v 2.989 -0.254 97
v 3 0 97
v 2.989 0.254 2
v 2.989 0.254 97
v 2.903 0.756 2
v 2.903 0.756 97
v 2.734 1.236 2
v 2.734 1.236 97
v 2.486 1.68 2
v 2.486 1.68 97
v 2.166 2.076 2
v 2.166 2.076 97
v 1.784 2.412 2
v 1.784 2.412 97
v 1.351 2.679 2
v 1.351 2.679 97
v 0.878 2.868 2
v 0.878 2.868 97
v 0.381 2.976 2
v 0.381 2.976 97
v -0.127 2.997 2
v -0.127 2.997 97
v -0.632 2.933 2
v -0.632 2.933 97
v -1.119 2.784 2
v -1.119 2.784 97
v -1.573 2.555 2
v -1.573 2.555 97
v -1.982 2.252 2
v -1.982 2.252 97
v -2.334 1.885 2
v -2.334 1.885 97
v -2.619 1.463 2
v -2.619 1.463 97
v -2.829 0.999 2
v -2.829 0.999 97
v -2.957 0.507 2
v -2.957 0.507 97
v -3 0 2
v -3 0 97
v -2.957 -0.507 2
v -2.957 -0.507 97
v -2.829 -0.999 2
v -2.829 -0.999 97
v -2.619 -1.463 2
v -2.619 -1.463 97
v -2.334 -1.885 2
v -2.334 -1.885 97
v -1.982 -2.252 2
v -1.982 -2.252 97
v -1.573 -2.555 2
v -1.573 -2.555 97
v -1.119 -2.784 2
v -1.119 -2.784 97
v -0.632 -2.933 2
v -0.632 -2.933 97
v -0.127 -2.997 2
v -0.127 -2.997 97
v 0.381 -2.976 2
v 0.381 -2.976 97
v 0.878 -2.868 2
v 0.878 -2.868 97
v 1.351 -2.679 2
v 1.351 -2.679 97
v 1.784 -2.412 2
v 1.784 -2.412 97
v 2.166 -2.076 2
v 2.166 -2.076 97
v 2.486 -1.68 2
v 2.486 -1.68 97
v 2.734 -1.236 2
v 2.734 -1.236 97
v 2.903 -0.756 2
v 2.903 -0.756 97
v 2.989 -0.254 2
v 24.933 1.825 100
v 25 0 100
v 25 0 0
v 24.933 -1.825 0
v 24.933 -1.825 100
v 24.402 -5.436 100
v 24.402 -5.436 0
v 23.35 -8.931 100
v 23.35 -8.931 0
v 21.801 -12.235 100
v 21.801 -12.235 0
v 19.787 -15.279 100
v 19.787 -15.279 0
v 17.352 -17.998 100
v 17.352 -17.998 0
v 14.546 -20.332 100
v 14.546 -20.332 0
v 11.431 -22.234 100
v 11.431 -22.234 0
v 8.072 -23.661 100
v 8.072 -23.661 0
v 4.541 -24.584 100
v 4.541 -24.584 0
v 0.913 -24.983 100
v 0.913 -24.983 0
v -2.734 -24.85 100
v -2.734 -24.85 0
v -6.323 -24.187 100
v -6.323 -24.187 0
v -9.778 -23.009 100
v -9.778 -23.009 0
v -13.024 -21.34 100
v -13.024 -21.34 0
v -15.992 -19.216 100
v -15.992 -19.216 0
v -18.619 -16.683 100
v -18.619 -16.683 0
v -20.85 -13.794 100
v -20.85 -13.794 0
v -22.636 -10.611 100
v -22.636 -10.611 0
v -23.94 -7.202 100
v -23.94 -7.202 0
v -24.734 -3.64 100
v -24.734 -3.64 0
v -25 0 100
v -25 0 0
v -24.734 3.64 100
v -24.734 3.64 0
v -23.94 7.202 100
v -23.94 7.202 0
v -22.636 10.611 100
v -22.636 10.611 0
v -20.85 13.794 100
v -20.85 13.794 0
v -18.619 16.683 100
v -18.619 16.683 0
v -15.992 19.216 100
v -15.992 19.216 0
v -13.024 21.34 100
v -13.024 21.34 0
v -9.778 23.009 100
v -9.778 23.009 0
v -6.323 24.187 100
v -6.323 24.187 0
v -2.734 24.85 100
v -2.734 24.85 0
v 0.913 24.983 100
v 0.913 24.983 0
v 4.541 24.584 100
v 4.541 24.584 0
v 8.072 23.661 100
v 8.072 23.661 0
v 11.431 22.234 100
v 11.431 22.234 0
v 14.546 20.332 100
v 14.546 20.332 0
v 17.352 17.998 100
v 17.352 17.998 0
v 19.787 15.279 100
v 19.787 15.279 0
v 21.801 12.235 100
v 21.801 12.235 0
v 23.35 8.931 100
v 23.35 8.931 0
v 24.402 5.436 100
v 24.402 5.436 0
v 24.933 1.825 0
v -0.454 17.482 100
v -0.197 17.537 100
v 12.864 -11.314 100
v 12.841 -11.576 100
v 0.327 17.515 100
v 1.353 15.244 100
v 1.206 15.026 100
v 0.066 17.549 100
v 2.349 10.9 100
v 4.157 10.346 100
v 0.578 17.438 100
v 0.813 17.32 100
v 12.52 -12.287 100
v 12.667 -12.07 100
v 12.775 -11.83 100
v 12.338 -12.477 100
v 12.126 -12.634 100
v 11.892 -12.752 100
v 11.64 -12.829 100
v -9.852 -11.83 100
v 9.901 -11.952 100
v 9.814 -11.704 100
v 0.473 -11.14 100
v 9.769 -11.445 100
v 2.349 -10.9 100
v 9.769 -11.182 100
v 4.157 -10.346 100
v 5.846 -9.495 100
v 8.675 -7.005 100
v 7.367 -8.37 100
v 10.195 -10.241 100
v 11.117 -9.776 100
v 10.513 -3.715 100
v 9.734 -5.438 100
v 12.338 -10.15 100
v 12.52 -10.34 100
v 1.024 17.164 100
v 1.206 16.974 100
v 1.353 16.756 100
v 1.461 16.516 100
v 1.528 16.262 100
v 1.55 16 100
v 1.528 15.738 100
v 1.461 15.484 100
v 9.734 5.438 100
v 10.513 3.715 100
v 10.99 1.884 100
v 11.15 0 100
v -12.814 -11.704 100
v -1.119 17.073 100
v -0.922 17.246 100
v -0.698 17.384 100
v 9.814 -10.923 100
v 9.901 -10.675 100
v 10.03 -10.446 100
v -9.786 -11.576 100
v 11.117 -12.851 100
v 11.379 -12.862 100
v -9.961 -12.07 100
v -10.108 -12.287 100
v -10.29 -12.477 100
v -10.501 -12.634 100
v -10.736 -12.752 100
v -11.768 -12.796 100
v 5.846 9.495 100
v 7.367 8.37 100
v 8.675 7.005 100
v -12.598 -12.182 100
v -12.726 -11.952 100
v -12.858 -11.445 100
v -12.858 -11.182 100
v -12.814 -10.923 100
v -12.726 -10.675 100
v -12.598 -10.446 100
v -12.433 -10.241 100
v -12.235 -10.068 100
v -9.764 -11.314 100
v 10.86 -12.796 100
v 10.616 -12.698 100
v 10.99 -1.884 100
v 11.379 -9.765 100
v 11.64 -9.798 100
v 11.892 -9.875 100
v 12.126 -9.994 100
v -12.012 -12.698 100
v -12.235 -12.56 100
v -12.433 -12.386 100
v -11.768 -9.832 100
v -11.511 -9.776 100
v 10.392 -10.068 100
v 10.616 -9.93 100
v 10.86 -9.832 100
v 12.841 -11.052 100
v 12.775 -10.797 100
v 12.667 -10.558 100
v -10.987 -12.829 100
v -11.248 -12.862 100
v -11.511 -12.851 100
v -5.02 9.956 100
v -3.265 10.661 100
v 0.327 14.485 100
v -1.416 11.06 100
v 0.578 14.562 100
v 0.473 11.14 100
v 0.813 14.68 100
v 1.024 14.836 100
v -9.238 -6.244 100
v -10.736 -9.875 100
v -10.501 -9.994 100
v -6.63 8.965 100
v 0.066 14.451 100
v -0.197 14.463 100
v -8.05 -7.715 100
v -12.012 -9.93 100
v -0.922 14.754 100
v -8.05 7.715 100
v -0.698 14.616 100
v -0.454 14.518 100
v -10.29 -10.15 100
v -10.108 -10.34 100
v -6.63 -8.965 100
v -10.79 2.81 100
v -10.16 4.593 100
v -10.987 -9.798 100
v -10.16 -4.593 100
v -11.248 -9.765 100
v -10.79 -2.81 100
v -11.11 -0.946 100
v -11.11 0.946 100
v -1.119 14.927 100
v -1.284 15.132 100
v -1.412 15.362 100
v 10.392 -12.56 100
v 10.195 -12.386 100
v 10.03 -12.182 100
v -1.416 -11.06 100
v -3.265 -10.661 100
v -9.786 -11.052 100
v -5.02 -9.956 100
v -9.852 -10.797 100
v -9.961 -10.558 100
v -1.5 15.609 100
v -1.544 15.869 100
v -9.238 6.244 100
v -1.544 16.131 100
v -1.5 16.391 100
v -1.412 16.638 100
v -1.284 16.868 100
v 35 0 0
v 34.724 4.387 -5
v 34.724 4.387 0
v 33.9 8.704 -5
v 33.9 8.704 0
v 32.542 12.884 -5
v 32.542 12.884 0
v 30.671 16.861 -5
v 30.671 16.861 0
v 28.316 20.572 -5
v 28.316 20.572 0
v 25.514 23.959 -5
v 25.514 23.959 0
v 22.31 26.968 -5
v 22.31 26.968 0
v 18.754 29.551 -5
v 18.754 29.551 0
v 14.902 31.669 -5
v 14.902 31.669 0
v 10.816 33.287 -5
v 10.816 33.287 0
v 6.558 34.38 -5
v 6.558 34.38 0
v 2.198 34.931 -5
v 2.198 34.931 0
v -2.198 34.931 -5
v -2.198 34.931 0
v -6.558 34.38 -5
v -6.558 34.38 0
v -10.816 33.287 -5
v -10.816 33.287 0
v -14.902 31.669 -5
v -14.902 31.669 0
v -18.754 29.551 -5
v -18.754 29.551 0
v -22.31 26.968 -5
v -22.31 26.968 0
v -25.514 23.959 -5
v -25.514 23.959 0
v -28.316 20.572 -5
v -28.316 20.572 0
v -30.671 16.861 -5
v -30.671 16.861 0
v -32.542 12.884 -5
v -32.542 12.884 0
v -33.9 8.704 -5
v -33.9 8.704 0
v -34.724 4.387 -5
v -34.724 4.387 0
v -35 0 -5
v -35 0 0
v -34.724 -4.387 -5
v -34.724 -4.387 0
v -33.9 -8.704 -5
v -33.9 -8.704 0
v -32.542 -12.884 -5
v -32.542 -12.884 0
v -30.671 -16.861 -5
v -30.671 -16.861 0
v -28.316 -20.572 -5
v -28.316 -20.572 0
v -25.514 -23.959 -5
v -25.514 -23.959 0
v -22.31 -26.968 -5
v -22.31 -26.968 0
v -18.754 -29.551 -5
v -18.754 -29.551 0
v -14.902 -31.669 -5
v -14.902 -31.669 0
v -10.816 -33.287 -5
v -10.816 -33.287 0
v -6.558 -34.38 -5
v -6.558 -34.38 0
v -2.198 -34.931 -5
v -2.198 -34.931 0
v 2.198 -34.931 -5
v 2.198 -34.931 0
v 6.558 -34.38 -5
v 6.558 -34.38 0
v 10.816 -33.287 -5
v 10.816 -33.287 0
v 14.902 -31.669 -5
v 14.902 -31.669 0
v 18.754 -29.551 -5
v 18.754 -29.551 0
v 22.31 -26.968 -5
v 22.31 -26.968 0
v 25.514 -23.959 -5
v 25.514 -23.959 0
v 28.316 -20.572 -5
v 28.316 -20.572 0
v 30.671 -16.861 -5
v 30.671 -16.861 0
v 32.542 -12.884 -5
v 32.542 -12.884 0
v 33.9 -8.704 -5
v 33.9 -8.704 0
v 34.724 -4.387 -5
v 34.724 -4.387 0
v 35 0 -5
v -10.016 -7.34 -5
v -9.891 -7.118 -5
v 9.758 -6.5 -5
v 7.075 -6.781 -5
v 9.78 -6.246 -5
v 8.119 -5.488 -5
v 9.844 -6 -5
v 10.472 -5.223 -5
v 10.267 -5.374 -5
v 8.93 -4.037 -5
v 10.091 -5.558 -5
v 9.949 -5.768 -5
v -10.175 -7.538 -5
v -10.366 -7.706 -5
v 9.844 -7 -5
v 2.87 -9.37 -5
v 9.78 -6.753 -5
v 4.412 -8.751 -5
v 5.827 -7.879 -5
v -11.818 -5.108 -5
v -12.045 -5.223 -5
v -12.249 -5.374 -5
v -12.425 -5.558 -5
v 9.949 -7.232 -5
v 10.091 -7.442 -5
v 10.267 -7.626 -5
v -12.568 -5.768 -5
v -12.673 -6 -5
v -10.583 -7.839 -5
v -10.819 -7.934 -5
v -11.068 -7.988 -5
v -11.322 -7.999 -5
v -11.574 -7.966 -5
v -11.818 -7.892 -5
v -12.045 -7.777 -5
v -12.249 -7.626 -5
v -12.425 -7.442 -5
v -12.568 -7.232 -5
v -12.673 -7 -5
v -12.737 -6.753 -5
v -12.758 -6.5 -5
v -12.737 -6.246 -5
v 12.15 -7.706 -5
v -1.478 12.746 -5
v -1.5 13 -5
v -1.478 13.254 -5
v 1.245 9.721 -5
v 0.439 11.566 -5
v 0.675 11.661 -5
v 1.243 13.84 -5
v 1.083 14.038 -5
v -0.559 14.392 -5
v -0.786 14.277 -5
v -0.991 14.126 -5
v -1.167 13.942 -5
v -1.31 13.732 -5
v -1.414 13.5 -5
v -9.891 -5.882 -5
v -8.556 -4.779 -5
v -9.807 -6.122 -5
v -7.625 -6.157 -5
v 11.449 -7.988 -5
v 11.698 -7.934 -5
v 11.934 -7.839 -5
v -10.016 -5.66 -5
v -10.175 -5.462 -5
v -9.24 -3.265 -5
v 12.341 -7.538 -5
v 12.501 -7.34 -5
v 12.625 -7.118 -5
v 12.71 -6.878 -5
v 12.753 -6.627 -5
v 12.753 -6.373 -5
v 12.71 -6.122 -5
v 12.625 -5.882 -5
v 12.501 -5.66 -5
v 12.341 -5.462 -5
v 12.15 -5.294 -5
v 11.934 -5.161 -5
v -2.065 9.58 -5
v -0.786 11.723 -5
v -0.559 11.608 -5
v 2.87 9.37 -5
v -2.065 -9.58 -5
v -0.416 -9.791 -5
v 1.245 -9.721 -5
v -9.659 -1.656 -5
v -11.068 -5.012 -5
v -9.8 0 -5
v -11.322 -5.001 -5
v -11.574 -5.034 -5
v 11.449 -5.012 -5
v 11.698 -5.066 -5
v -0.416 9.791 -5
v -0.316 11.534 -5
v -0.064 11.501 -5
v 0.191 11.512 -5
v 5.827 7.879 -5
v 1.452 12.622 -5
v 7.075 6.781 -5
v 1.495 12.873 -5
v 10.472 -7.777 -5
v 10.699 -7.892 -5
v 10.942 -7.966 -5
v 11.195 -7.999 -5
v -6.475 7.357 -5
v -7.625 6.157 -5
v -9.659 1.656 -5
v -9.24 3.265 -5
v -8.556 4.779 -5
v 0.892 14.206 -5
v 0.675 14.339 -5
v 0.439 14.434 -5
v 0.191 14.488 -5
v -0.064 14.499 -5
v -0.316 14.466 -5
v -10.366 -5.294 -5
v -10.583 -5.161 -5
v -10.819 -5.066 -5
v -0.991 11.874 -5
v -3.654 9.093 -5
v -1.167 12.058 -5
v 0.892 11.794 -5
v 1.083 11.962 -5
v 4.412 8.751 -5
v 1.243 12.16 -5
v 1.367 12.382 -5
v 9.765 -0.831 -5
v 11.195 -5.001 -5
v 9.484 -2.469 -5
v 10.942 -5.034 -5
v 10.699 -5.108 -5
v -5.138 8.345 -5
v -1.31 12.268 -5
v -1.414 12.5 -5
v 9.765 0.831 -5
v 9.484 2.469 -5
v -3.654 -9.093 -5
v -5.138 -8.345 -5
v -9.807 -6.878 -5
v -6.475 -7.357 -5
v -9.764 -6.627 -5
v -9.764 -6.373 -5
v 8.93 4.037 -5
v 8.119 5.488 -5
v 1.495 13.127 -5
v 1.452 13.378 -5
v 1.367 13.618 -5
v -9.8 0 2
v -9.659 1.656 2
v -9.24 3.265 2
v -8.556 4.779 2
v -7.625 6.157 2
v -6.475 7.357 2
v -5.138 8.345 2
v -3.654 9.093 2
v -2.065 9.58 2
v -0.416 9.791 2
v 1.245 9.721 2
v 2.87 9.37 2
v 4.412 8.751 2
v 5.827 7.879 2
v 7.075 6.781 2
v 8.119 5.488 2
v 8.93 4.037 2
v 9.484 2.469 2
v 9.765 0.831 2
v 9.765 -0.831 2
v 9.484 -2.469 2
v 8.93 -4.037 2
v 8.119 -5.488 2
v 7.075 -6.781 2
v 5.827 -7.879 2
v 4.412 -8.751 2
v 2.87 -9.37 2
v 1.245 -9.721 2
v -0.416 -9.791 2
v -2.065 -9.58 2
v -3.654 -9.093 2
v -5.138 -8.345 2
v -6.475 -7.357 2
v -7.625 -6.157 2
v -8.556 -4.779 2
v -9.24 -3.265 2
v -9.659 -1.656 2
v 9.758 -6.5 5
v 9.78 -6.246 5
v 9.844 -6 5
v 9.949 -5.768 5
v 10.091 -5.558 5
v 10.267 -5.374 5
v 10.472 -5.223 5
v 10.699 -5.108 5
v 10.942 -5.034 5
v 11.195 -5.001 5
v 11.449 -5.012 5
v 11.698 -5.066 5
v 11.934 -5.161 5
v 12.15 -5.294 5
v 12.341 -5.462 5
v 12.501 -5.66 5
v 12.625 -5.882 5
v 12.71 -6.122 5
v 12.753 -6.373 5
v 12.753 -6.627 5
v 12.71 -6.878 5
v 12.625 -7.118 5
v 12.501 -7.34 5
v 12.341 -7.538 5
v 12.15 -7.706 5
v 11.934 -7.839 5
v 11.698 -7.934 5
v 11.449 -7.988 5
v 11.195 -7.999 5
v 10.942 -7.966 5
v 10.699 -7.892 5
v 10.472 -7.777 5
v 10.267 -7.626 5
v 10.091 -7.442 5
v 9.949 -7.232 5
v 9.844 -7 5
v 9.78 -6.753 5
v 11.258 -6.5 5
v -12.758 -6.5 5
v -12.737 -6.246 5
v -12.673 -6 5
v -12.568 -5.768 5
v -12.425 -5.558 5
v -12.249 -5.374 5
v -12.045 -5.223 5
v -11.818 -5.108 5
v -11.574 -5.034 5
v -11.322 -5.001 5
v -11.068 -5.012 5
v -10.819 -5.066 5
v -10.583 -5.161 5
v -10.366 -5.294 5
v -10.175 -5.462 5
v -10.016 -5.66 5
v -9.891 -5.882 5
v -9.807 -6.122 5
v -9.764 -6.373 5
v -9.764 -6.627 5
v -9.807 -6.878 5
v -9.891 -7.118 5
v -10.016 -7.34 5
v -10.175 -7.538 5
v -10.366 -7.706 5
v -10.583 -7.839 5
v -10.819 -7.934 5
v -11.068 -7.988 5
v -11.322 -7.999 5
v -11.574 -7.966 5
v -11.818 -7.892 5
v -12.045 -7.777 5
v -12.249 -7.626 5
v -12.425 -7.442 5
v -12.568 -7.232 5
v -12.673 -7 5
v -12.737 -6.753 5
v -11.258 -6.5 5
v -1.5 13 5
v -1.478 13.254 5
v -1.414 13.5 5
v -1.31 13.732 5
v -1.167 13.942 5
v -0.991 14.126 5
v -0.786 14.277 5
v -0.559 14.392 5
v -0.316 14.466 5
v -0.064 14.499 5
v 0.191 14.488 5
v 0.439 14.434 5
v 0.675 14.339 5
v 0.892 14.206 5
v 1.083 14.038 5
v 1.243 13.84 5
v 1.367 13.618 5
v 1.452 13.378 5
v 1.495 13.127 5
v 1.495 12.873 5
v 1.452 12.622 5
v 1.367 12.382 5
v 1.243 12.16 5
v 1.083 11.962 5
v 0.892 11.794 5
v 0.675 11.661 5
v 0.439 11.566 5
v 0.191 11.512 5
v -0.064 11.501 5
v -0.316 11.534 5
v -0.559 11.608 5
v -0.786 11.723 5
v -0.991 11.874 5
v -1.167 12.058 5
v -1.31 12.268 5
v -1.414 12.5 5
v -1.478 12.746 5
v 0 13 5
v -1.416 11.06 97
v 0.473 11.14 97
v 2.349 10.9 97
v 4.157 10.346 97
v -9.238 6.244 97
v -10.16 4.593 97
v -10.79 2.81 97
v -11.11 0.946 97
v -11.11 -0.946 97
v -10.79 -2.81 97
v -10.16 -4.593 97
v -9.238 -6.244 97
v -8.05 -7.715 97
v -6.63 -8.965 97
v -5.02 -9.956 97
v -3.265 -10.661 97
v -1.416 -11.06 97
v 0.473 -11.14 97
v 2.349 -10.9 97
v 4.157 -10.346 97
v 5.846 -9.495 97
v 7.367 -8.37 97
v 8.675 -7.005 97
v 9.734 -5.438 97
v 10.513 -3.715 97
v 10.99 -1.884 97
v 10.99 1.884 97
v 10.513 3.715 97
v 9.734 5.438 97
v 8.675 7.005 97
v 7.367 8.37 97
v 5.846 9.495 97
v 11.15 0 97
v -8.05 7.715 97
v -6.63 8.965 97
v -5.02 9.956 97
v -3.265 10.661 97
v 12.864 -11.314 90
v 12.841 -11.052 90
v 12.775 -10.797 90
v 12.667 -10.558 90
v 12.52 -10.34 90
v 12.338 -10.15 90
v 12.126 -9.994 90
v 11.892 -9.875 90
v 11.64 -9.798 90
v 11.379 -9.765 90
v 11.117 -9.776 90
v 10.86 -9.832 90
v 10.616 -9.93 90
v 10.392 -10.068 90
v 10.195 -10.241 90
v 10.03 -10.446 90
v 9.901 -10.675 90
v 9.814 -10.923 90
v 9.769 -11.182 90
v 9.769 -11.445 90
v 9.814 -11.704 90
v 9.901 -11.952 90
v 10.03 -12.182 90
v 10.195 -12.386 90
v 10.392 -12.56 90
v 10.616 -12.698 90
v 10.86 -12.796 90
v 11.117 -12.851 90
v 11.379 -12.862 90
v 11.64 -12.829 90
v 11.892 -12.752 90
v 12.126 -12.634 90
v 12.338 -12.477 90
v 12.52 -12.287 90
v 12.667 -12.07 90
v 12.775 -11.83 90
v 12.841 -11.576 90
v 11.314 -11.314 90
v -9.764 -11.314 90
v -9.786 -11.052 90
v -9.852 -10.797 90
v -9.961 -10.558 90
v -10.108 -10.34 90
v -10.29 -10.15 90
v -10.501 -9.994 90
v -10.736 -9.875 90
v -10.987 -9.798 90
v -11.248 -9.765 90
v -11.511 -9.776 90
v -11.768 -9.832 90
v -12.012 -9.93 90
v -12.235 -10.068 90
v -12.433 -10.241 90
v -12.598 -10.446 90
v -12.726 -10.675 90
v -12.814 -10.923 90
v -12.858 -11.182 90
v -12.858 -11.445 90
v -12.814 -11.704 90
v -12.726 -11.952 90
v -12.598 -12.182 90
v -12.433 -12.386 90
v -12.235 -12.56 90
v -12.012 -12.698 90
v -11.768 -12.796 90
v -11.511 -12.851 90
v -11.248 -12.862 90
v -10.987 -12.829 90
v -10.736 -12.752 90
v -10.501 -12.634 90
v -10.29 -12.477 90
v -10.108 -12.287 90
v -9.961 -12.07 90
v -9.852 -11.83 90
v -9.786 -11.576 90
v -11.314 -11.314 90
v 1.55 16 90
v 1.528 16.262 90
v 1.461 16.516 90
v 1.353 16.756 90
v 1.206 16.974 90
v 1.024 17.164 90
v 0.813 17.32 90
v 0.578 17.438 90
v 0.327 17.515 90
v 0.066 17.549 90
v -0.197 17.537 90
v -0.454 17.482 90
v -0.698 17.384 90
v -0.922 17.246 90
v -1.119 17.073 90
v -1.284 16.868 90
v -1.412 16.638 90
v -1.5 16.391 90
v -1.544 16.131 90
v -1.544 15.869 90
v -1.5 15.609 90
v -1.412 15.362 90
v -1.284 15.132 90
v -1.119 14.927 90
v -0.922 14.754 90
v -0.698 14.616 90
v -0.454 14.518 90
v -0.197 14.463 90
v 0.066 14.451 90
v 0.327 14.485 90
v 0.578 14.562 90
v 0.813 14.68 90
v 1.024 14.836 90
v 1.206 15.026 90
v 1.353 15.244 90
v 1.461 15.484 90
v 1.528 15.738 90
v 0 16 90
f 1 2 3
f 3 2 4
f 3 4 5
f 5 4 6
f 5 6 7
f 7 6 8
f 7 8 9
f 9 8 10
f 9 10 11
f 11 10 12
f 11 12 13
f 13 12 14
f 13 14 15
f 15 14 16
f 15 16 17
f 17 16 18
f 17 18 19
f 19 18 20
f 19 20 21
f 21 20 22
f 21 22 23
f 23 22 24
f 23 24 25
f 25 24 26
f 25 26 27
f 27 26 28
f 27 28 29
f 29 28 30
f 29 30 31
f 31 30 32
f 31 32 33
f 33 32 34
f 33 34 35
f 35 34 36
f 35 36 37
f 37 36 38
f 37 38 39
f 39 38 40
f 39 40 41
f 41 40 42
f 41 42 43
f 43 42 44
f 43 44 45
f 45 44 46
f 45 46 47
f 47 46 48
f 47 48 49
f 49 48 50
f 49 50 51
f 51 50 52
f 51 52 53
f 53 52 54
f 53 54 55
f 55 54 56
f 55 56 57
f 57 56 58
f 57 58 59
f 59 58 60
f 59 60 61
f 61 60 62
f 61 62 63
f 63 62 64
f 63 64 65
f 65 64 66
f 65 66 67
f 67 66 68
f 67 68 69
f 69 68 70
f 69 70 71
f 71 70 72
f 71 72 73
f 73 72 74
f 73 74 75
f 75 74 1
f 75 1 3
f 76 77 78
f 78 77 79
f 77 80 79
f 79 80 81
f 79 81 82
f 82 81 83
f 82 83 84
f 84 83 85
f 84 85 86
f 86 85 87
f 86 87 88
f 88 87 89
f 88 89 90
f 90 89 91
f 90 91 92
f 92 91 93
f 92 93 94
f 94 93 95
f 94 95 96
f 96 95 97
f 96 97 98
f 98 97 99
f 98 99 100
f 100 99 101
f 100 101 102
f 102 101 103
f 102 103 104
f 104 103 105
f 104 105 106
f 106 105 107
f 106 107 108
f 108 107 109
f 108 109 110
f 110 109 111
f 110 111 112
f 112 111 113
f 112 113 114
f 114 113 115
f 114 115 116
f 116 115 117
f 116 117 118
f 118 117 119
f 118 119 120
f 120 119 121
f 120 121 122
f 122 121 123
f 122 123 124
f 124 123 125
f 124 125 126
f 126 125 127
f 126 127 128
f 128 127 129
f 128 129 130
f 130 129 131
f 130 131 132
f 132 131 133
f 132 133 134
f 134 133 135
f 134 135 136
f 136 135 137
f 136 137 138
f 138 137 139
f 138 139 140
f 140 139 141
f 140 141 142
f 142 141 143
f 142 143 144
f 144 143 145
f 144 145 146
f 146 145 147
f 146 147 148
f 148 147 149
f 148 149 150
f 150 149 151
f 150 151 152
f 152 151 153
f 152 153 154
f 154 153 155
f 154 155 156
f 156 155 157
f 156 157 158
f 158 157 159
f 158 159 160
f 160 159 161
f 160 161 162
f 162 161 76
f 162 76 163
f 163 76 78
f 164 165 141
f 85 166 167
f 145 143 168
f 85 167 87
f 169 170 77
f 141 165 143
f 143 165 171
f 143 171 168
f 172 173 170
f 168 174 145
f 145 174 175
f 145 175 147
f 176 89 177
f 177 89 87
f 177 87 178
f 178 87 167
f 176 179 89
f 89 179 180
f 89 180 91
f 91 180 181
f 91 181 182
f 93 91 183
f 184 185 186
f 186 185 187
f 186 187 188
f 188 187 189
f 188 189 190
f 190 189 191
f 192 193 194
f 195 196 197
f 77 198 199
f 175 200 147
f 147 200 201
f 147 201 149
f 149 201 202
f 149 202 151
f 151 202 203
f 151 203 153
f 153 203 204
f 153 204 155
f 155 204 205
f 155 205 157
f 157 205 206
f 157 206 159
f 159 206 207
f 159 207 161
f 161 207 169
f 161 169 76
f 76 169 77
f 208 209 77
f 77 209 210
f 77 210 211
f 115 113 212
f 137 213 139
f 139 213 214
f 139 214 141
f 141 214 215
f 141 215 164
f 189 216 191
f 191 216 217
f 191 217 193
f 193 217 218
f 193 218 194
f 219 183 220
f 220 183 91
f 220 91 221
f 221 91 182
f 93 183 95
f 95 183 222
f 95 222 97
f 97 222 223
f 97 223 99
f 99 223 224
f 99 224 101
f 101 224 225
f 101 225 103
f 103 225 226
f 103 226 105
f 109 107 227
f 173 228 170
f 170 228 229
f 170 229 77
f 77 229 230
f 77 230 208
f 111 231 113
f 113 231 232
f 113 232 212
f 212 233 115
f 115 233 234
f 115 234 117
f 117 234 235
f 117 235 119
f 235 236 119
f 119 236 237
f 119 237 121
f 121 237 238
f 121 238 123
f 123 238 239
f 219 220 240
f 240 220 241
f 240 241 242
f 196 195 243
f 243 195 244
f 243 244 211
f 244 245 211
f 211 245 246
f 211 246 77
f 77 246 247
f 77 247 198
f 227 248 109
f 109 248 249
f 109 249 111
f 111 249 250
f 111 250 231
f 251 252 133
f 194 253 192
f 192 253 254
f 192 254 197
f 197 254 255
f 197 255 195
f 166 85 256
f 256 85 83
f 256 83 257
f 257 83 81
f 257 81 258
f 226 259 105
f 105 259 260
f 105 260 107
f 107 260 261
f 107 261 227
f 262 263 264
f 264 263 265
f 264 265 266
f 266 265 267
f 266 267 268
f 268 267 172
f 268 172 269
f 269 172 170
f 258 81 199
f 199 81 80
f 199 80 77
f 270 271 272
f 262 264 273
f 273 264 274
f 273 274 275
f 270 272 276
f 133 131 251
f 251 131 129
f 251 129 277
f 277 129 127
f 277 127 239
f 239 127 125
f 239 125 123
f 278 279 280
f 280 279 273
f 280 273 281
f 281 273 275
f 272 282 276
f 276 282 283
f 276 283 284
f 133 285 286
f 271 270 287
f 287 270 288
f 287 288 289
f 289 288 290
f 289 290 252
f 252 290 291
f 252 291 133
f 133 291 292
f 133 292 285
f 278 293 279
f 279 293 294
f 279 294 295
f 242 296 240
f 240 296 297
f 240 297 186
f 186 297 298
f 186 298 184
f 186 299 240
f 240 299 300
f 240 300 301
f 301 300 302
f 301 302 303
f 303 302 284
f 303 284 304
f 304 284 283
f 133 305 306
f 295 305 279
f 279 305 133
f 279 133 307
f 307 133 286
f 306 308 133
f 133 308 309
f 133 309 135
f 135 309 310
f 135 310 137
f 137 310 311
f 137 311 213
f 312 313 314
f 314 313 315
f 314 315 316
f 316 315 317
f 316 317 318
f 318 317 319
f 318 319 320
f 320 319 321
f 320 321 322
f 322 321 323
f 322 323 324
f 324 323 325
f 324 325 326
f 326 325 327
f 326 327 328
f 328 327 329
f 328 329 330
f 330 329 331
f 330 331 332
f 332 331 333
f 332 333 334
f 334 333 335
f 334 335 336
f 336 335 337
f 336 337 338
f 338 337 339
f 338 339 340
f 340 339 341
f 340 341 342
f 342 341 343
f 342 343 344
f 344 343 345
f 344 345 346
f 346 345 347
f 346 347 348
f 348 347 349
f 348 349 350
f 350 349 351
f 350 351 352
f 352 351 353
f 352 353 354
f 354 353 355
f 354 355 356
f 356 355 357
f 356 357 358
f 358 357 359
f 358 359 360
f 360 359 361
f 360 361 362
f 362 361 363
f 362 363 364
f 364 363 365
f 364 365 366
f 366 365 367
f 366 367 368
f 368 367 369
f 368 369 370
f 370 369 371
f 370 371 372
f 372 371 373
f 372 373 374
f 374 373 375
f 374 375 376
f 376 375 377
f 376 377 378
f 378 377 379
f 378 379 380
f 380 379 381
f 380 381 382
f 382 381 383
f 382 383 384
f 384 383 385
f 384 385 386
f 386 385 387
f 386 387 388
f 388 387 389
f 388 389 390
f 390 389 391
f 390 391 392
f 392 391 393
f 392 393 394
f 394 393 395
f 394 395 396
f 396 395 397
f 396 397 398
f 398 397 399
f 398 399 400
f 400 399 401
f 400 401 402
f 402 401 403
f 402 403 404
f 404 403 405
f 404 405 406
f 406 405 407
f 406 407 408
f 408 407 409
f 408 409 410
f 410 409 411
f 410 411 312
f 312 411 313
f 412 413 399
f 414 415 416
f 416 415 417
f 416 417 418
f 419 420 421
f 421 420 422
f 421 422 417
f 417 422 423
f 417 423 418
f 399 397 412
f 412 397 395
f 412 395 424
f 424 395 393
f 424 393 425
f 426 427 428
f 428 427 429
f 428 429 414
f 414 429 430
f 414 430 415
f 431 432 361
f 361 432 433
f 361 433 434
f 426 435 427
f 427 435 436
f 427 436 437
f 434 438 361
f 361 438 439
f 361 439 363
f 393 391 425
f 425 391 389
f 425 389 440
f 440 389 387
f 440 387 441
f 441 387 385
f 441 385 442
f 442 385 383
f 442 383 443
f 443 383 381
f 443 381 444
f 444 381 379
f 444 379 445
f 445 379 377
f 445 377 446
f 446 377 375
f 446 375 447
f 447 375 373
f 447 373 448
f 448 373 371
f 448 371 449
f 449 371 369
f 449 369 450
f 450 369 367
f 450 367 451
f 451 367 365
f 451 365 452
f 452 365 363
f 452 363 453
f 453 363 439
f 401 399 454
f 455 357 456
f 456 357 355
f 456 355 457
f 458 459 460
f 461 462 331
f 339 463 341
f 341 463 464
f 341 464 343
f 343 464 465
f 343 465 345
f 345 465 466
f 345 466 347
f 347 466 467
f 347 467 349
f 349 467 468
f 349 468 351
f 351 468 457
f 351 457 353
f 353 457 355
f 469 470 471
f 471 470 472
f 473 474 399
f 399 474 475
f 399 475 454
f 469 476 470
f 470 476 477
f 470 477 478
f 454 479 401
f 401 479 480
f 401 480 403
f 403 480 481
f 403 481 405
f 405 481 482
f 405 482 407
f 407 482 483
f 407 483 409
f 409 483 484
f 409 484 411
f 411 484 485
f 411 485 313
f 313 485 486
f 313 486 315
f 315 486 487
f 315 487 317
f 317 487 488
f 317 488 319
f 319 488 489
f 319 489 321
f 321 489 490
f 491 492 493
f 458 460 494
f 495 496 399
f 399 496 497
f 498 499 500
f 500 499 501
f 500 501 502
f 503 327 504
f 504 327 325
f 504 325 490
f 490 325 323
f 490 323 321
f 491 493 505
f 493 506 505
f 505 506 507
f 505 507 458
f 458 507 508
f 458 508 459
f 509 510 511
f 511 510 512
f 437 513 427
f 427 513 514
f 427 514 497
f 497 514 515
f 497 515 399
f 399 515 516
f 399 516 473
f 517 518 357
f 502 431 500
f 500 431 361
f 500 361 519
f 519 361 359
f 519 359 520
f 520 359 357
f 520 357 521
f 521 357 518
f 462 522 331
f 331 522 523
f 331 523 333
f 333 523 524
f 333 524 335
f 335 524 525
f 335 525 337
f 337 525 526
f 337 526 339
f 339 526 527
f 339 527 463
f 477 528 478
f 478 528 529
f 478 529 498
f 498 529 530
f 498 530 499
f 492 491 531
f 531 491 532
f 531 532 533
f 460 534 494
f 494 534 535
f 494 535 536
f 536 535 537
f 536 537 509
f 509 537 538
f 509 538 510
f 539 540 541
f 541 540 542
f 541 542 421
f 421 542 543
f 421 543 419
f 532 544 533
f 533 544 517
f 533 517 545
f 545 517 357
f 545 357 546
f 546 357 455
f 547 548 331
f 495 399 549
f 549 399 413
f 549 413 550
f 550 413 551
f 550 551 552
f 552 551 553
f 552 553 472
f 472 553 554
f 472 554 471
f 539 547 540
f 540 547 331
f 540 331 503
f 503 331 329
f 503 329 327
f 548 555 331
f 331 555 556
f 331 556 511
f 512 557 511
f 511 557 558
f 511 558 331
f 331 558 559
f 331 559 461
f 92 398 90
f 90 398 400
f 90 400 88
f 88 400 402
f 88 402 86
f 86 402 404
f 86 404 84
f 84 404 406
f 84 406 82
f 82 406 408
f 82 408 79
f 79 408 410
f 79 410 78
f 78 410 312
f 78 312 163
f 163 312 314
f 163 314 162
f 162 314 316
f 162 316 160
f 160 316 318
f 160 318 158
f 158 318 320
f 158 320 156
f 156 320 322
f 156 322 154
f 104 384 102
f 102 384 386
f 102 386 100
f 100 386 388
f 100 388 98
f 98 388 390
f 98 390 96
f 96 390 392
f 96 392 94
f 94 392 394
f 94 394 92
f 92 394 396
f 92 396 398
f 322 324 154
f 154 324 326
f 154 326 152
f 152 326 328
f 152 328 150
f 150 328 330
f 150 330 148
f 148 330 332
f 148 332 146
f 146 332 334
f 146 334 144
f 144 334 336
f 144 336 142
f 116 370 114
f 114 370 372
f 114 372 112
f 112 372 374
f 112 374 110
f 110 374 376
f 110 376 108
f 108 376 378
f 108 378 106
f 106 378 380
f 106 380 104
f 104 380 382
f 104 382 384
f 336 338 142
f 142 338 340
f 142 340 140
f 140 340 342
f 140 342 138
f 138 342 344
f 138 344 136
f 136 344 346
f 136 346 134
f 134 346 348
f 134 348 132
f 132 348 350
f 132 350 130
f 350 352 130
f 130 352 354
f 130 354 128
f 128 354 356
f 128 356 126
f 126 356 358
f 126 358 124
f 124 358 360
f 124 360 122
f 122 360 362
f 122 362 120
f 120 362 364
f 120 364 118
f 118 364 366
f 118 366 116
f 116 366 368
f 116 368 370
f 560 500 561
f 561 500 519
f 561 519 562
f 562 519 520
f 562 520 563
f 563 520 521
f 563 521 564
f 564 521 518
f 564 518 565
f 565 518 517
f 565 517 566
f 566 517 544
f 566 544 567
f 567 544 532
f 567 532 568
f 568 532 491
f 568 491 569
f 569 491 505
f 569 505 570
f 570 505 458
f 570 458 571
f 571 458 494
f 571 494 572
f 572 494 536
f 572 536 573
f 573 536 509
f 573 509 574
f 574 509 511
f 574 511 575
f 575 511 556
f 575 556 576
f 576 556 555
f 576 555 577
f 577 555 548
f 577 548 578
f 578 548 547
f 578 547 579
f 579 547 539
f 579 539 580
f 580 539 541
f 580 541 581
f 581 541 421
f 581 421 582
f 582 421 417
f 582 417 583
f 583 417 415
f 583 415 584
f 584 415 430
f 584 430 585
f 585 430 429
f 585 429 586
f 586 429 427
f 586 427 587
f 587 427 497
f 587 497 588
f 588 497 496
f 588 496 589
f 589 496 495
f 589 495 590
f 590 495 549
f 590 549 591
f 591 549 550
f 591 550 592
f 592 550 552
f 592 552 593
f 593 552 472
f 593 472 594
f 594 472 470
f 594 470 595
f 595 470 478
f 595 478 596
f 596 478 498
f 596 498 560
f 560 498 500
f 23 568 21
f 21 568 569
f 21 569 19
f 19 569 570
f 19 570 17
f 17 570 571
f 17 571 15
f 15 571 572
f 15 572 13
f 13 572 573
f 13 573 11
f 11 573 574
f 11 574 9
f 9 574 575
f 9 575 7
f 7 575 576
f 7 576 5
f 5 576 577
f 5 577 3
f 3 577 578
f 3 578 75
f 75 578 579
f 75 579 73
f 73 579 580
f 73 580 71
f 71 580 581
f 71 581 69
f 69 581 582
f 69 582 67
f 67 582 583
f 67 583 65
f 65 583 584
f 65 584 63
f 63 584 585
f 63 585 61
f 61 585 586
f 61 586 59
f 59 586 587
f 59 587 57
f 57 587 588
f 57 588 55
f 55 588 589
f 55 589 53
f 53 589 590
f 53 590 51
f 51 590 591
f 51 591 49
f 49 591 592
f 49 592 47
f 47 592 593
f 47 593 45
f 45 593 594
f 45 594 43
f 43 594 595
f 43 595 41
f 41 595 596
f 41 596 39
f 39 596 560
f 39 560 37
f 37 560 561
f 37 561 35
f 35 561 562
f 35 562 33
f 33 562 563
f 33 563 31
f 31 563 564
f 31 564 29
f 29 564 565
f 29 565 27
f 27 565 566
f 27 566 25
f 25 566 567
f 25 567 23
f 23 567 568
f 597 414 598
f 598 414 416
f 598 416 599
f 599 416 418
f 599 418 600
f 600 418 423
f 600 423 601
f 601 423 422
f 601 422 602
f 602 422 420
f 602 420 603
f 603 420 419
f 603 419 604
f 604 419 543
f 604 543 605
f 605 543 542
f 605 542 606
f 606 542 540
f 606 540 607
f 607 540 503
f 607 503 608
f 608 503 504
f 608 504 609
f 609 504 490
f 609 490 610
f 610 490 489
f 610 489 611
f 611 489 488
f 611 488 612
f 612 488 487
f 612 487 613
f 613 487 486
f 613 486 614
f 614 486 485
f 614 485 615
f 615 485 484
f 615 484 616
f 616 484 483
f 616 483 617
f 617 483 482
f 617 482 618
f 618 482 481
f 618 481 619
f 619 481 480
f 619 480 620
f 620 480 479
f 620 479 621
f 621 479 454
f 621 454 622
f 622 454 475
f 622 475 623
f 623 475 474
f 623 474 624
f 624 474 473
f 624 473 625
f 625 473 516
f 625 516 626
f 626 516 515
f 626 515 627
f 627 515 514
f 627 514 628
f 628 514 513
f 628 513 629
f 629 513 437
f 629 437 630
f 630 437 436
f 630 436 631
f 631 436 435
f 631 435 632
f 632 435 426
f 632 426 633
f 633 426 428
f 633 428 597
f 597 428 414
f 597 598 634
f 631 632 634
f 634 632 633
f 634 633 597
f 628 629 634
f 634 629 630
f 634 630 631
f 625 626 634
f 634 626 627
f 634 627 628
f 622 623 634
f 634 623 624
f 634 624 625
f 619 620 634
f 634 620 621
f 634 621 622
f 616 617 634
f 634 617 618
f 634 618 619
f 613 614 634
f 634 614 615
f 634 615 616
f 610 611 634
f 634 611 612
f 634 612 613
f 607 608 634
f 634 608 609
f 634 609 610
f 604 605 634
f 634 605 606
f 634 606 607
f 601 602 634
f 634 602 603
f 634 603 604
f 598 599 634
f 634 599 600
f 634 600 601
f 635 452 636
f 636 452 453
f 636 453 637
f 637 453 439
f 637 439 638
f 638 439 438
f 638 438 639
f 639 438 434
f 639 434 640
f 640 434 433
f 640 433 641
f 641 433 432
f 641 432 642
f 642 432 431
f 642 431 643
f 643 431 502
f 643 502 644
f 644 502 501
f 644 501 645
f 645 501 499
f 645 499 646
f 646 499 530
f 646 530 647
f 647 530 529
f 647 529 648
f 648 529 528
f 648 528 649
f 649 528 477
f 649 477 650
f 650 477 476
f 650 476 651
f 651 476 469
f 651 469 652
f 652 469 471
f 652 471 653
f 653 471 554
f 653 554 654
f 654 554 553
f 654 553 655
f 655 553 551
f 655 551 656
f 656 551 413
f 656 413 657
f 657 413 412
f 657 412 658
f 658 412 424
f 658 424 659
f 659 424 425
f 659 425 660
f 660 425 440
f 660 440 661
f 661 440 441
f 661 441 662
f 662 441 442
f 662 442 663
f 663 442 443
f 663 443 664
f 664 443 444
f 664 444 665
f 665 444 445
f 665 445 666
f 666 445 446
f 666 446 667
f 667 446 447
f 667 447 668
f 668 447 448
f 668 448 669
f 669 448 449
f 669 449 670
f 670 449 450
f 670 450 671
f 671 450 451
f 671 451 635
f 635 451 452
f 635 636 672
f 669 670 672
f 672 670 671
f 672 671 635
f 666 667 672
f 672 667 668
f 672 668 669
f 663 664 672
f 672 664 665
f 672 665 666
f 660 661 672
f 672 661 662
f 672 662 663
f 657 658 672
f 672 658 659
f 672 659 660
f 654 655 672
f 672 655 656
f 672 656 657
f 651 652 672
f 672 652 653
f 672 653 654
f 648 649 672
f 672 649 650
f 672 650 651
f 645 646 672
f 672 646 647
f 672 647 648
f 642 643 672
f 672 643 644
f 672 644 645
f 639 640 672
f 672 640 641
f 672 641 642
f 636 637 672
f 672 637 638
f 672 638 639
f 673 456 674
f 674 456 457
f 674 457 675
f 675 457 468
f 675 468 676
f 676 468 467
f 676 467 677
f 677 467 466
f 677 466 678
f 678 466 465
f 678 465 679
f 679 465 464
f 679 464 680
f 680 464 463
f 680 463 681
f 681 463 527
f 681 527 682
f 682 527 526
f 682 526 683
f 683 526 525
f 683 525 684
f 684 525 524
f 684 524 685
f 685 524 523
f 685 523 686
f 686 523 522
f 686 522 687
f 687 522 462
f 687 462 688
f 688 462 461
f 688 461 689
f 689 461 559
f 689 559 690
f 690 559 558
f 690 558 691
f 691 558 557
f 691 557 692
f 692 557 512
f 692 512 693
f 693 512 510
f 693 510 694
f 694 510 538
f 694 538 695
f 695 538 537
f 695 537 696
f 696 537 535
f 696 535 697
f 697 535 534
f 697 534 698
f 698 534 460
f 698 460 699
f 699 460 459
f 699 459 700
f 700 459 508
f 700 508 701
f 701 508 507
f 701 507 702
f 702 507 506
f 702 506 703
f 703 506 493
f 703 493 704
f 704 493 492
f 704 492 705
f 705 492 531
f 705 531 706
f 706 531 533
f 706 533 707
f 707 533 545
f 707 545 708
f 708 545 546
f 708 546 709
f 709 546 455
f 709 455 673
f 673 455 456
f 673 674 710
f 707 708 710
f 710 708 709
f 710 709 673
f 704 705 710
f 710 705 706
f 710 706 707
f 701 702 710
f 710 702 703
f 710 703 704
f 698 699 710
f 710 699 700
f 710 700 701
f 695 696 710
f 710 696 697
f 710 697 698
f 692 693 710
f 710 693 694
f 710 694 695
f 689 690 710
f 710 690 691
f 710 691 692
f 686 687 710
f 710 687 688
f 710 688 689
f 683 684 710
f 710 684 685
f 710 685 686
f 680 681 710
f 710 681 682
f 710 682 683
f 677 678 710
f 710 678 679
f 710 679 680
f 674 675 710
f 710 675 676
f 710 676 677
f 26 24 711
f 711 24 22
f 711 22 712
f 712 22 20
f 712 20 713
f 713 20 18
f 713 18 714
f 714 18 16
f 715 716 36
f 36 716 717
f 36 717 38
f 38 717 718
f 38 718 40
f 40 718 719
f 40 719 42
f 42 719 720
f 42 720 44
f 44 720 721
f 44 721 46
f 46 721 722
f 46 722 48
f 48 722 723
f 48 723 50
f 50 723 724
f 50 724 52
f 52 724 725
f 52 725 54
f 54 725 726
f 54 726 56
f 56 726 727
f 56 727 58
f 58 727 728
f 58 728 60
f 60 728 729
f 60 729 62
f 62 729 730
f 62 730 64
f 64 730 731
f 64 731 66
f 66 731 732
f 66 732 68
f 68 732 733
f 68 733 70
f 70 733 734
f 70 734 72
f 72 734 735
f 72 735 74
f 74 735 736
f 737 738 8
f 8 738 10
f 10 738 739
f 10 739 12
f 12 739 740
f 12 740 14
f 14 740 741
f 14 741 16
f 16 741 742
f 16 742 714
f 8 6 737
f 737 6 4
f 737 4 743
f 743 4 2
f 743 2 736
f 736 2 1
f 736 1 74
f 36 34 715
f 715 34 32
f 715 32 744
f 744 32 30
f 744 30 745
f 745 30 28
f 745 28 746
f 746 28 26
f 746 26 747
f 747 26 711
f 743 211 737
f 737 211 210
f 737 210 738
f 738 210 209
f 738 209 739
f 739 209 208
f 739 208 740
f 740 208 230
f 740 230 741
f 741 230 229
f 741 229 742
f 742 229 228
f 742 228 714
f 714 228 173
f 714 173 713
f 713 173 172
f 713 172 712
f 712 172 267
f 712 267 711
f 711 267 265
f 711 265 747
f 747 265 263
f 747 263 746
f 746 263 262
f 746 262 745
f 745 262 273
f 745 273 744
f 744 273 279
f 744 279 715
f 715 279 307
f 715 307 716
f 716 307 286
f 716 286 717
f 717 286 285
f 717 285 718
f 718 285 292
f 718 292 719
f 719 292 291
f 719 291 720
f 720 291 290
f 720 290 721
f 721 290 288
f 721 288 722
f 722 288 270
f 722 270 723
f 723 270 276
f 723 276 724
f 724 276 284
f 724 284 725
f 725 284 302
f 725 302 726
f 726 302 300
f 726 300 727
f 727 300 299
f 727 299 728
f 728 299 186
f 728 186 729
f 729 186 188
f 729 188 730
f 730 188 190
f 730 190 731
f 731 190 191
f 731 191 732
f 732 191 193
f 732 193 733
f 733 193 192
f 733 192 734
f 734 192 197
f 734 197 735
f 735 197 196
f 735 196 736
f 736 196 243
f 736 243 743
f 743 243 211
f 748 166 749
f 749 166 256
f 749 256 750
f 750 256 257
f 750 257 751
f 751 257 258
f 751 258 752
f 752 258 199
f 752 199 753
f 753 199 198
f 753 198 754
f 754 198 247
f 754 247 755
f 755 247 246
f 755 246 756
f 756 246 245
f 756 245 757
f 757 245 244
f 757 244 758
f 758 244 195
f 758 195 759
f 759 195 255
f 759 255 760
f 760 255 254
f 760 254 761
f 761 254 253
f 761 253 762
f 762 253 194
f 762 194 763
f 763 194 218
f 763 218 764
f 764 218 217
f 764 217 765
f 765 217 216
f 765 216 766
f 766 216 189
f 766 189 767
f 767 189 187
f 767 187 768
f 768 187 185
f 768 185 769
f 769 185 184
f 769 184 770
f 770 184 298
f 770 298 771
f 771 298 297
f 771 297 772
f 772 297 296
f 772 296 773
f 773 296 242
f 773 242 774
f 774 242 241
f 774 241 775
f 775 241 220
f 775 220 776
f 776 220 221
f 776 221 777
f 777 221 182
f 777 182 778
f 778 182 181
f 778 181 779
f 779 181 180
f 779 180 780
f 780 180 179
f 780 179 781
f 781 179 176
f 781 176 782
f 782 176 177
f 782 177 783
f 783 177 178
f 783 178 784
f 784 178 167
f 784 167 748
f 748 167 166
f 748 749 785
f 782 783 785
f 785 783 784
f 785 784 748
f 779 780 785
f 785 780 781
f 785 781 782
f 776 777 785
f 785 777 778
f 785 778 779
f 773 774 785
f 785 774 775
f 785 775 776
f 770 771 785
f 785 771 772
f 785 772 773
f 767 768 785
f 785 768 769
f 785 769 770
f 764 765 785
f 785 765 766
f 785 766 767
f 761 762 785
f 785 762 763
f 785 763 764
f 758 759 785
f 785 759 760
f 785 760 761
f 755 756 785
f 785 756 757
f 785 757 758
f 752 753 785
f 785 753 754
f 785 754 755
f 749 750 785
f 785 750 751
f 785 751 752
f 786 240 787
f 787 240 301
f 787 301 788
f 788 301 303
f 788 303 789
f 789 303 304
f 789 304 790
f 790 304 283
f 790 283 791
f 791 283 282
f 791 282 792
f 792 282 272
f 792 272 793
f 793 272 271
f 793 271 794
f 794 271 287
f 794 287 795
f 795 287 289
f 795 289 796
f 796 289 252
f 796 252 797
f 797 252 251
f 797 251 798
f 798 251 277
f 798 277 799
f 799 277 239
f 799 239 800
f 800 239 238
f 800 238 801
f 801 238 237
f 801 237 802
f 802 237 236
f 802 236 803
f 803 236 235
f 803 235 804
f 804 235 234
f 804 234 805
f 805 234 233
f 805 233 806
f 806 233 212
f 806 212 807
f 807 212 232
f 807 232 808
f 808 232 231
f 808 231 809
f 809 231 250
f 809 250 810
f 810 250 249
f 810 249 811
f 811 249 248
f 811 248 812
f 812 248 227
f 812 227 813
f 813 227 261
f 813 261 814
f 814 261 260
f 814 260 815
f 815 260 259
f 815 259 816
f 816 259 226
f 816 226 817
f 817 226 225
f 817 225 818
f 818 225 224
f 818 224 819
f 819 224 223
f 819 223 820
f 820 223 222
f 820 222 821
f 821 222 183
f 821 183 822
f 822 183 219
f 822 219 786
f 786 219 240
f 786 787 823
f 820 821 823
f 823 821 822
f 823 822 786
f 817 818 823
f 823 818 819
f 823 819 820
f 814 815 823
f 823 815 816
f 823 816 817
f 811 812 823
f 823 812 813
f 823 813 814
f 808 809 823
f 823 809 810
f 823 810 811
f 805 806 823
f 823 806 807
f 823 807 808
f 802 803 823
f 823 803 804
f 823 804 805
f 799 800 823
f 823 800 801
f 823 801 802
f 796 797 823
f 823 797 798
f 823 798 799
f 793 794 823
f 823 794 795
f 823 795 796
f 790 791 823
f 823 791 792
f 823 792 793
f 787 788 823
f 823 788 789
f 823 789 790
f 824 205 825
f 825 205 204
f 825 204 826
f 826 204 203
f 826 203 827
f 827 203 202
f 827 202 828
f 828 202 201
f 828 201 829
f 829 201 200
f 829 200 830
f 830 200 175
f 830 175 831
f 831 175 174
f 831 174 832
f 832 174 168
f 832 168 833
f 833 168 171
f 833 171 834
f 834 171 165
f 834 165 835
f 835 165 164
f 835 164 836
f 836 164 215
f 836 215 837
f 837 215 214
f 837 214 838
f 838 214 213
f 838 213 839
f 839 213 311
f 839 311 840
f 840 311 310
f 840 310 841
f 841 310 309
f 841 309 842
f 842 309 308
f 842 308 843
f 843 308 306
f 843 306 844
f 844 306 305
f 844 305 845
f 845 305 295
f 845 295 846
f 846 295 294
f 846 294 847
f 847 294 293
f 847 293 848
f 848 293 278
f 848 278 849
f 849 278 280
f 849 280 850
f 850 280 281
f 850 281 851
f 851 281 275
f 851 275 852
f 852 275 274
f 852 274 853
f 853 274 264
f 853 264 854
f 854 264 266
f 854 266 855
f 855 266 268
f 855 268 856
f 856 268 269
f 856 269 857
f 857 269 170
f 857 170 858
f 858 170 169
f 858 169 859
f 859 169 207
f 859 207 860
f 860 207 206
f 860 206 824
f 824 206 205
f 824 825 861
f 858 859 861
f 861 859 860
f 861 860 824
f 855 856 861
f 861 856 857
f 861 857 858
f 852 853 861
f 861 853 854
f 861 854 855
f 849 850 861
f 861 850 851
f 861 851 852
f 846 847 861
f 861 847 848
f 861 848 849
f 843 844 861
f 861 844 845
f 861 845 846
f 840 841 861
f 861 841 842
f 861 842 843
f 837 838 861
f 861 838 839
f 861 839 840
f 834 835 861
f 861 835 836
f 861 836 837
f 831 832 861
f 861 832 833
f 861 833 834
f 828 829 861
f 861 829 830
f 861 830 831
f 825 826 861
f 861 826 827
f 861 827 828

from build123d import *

# Parameters (mm, degrees)
SKETCH_1_R          = 25
EXTRUDE_1_DEPTH     = 100
SKETCH_2_R          = 35
EXTRUDE_2_DEPTH     = 5
SKETCH_4_R          = 9.8
CUT_EXTRUDE_1_DEPTH = 7
SKETCH_5_R          = 3
CUT_EXTRUDE_2_DEPTH = 106
SKETCH_6_R          = 1.5
CUT_EXTRUDE_3_DEPTH = 10
SKETCH_7_R          = 11.15
CUT_EXTRUDE_4_DEPTH = 3
SKETCH_8_R          = 1.55
CUT_EXTRUDE_5_DEPTH = 10


with BuildPart() as part:
    # Эскиз1 → Бобышка-Вытянуть1 (new body)
    with BuildSketch(Plane.XY):
        Circle(SKETCH_1_R)
    extrude(amount=EXTRUDE_1_DEPTH)

    # Эскиз2 → Бобышка-Вытянуть2 (add)
    with BuildSketch(Plane(origin=(0, 0, 0), x_dir=(-1, 0, 0), z_dir=(0, 0, -1))):
        Circle(SKETCH_2_R)
    extrude(amount=EXTRUDE_2_DEPTH)

    # Эскиз4 → Вырез-Вытянуть1 (cut)
    with BuildSketch(Plane(origin=(0, 0, -5), x_dir=(-1, 0, 0), z_dir=(0, 0, -1))):
        Circle(SKETCH_4_R)
    extrude(amount=-CUT_EXTRUDE_1_DEPTH, mode=Mode.SUBTRACT)

    # Эскиз5 → Вырез-Вытянуть2 (cut, through all)
    with BuildSketch(Plane(origin=(0, 0, -5), x_dir=(-1, 0, 0), z_dir=(0, 0, -1))):
        Circle(SKETCH_5_R)
    extrude(amount=-CUT_EXTRUDE_2_DEPTH, mode=Mode.SUBTRACT)

    # Эскиз6 → Вырез-Вытянуть3 (cut)
    with BuildSketch(Plane(origin=(0, 0, -5), x_dir=(-1, 0, 0), z_dir=(0, 0, -1))):
        with Locations((0, 13)):
            Circle(SKETCH_6_R)
        with Locations((11.258330249, -6.5)):
            Circle(SKETCH_6_R)
        with Locations((-11.258330249, -6.5)):
            Circle(SKETCH_6_R)
    extrude(amount=-CUT_EXTRUDE_3_DEPTH, mode=Mode.SUBTRACT)

    # Эскиз7 → Вырез-Вытянуть4 (cut)
    with BuildSketch(Plane.XY.offset(100)):
        Circle(SKETCH_7_R)
    extrude(amount=-CUT_EXTRUDE_4_DEPTH, mode=Mode.SUBTRACT)

    # Эскиз8 → Вырез-Вытянуть5 (cut)
    with BuildSketch(Plane.XY.offset(100)):
        with Locations((0, 16)):
            Circle(SKETCH_8_R)
        with Locations((-11.313708499, -11.313708499)):
            Circle(SKETCH_8_R)
        with Locations((11.313708499, -11.313708499)):
            Circle(SKETCH_8_R)
    extrude(amount=-CUT_EXTRUDE_5_DEPTH, mode=Mode.SUBTRACT)


solid = part.part
